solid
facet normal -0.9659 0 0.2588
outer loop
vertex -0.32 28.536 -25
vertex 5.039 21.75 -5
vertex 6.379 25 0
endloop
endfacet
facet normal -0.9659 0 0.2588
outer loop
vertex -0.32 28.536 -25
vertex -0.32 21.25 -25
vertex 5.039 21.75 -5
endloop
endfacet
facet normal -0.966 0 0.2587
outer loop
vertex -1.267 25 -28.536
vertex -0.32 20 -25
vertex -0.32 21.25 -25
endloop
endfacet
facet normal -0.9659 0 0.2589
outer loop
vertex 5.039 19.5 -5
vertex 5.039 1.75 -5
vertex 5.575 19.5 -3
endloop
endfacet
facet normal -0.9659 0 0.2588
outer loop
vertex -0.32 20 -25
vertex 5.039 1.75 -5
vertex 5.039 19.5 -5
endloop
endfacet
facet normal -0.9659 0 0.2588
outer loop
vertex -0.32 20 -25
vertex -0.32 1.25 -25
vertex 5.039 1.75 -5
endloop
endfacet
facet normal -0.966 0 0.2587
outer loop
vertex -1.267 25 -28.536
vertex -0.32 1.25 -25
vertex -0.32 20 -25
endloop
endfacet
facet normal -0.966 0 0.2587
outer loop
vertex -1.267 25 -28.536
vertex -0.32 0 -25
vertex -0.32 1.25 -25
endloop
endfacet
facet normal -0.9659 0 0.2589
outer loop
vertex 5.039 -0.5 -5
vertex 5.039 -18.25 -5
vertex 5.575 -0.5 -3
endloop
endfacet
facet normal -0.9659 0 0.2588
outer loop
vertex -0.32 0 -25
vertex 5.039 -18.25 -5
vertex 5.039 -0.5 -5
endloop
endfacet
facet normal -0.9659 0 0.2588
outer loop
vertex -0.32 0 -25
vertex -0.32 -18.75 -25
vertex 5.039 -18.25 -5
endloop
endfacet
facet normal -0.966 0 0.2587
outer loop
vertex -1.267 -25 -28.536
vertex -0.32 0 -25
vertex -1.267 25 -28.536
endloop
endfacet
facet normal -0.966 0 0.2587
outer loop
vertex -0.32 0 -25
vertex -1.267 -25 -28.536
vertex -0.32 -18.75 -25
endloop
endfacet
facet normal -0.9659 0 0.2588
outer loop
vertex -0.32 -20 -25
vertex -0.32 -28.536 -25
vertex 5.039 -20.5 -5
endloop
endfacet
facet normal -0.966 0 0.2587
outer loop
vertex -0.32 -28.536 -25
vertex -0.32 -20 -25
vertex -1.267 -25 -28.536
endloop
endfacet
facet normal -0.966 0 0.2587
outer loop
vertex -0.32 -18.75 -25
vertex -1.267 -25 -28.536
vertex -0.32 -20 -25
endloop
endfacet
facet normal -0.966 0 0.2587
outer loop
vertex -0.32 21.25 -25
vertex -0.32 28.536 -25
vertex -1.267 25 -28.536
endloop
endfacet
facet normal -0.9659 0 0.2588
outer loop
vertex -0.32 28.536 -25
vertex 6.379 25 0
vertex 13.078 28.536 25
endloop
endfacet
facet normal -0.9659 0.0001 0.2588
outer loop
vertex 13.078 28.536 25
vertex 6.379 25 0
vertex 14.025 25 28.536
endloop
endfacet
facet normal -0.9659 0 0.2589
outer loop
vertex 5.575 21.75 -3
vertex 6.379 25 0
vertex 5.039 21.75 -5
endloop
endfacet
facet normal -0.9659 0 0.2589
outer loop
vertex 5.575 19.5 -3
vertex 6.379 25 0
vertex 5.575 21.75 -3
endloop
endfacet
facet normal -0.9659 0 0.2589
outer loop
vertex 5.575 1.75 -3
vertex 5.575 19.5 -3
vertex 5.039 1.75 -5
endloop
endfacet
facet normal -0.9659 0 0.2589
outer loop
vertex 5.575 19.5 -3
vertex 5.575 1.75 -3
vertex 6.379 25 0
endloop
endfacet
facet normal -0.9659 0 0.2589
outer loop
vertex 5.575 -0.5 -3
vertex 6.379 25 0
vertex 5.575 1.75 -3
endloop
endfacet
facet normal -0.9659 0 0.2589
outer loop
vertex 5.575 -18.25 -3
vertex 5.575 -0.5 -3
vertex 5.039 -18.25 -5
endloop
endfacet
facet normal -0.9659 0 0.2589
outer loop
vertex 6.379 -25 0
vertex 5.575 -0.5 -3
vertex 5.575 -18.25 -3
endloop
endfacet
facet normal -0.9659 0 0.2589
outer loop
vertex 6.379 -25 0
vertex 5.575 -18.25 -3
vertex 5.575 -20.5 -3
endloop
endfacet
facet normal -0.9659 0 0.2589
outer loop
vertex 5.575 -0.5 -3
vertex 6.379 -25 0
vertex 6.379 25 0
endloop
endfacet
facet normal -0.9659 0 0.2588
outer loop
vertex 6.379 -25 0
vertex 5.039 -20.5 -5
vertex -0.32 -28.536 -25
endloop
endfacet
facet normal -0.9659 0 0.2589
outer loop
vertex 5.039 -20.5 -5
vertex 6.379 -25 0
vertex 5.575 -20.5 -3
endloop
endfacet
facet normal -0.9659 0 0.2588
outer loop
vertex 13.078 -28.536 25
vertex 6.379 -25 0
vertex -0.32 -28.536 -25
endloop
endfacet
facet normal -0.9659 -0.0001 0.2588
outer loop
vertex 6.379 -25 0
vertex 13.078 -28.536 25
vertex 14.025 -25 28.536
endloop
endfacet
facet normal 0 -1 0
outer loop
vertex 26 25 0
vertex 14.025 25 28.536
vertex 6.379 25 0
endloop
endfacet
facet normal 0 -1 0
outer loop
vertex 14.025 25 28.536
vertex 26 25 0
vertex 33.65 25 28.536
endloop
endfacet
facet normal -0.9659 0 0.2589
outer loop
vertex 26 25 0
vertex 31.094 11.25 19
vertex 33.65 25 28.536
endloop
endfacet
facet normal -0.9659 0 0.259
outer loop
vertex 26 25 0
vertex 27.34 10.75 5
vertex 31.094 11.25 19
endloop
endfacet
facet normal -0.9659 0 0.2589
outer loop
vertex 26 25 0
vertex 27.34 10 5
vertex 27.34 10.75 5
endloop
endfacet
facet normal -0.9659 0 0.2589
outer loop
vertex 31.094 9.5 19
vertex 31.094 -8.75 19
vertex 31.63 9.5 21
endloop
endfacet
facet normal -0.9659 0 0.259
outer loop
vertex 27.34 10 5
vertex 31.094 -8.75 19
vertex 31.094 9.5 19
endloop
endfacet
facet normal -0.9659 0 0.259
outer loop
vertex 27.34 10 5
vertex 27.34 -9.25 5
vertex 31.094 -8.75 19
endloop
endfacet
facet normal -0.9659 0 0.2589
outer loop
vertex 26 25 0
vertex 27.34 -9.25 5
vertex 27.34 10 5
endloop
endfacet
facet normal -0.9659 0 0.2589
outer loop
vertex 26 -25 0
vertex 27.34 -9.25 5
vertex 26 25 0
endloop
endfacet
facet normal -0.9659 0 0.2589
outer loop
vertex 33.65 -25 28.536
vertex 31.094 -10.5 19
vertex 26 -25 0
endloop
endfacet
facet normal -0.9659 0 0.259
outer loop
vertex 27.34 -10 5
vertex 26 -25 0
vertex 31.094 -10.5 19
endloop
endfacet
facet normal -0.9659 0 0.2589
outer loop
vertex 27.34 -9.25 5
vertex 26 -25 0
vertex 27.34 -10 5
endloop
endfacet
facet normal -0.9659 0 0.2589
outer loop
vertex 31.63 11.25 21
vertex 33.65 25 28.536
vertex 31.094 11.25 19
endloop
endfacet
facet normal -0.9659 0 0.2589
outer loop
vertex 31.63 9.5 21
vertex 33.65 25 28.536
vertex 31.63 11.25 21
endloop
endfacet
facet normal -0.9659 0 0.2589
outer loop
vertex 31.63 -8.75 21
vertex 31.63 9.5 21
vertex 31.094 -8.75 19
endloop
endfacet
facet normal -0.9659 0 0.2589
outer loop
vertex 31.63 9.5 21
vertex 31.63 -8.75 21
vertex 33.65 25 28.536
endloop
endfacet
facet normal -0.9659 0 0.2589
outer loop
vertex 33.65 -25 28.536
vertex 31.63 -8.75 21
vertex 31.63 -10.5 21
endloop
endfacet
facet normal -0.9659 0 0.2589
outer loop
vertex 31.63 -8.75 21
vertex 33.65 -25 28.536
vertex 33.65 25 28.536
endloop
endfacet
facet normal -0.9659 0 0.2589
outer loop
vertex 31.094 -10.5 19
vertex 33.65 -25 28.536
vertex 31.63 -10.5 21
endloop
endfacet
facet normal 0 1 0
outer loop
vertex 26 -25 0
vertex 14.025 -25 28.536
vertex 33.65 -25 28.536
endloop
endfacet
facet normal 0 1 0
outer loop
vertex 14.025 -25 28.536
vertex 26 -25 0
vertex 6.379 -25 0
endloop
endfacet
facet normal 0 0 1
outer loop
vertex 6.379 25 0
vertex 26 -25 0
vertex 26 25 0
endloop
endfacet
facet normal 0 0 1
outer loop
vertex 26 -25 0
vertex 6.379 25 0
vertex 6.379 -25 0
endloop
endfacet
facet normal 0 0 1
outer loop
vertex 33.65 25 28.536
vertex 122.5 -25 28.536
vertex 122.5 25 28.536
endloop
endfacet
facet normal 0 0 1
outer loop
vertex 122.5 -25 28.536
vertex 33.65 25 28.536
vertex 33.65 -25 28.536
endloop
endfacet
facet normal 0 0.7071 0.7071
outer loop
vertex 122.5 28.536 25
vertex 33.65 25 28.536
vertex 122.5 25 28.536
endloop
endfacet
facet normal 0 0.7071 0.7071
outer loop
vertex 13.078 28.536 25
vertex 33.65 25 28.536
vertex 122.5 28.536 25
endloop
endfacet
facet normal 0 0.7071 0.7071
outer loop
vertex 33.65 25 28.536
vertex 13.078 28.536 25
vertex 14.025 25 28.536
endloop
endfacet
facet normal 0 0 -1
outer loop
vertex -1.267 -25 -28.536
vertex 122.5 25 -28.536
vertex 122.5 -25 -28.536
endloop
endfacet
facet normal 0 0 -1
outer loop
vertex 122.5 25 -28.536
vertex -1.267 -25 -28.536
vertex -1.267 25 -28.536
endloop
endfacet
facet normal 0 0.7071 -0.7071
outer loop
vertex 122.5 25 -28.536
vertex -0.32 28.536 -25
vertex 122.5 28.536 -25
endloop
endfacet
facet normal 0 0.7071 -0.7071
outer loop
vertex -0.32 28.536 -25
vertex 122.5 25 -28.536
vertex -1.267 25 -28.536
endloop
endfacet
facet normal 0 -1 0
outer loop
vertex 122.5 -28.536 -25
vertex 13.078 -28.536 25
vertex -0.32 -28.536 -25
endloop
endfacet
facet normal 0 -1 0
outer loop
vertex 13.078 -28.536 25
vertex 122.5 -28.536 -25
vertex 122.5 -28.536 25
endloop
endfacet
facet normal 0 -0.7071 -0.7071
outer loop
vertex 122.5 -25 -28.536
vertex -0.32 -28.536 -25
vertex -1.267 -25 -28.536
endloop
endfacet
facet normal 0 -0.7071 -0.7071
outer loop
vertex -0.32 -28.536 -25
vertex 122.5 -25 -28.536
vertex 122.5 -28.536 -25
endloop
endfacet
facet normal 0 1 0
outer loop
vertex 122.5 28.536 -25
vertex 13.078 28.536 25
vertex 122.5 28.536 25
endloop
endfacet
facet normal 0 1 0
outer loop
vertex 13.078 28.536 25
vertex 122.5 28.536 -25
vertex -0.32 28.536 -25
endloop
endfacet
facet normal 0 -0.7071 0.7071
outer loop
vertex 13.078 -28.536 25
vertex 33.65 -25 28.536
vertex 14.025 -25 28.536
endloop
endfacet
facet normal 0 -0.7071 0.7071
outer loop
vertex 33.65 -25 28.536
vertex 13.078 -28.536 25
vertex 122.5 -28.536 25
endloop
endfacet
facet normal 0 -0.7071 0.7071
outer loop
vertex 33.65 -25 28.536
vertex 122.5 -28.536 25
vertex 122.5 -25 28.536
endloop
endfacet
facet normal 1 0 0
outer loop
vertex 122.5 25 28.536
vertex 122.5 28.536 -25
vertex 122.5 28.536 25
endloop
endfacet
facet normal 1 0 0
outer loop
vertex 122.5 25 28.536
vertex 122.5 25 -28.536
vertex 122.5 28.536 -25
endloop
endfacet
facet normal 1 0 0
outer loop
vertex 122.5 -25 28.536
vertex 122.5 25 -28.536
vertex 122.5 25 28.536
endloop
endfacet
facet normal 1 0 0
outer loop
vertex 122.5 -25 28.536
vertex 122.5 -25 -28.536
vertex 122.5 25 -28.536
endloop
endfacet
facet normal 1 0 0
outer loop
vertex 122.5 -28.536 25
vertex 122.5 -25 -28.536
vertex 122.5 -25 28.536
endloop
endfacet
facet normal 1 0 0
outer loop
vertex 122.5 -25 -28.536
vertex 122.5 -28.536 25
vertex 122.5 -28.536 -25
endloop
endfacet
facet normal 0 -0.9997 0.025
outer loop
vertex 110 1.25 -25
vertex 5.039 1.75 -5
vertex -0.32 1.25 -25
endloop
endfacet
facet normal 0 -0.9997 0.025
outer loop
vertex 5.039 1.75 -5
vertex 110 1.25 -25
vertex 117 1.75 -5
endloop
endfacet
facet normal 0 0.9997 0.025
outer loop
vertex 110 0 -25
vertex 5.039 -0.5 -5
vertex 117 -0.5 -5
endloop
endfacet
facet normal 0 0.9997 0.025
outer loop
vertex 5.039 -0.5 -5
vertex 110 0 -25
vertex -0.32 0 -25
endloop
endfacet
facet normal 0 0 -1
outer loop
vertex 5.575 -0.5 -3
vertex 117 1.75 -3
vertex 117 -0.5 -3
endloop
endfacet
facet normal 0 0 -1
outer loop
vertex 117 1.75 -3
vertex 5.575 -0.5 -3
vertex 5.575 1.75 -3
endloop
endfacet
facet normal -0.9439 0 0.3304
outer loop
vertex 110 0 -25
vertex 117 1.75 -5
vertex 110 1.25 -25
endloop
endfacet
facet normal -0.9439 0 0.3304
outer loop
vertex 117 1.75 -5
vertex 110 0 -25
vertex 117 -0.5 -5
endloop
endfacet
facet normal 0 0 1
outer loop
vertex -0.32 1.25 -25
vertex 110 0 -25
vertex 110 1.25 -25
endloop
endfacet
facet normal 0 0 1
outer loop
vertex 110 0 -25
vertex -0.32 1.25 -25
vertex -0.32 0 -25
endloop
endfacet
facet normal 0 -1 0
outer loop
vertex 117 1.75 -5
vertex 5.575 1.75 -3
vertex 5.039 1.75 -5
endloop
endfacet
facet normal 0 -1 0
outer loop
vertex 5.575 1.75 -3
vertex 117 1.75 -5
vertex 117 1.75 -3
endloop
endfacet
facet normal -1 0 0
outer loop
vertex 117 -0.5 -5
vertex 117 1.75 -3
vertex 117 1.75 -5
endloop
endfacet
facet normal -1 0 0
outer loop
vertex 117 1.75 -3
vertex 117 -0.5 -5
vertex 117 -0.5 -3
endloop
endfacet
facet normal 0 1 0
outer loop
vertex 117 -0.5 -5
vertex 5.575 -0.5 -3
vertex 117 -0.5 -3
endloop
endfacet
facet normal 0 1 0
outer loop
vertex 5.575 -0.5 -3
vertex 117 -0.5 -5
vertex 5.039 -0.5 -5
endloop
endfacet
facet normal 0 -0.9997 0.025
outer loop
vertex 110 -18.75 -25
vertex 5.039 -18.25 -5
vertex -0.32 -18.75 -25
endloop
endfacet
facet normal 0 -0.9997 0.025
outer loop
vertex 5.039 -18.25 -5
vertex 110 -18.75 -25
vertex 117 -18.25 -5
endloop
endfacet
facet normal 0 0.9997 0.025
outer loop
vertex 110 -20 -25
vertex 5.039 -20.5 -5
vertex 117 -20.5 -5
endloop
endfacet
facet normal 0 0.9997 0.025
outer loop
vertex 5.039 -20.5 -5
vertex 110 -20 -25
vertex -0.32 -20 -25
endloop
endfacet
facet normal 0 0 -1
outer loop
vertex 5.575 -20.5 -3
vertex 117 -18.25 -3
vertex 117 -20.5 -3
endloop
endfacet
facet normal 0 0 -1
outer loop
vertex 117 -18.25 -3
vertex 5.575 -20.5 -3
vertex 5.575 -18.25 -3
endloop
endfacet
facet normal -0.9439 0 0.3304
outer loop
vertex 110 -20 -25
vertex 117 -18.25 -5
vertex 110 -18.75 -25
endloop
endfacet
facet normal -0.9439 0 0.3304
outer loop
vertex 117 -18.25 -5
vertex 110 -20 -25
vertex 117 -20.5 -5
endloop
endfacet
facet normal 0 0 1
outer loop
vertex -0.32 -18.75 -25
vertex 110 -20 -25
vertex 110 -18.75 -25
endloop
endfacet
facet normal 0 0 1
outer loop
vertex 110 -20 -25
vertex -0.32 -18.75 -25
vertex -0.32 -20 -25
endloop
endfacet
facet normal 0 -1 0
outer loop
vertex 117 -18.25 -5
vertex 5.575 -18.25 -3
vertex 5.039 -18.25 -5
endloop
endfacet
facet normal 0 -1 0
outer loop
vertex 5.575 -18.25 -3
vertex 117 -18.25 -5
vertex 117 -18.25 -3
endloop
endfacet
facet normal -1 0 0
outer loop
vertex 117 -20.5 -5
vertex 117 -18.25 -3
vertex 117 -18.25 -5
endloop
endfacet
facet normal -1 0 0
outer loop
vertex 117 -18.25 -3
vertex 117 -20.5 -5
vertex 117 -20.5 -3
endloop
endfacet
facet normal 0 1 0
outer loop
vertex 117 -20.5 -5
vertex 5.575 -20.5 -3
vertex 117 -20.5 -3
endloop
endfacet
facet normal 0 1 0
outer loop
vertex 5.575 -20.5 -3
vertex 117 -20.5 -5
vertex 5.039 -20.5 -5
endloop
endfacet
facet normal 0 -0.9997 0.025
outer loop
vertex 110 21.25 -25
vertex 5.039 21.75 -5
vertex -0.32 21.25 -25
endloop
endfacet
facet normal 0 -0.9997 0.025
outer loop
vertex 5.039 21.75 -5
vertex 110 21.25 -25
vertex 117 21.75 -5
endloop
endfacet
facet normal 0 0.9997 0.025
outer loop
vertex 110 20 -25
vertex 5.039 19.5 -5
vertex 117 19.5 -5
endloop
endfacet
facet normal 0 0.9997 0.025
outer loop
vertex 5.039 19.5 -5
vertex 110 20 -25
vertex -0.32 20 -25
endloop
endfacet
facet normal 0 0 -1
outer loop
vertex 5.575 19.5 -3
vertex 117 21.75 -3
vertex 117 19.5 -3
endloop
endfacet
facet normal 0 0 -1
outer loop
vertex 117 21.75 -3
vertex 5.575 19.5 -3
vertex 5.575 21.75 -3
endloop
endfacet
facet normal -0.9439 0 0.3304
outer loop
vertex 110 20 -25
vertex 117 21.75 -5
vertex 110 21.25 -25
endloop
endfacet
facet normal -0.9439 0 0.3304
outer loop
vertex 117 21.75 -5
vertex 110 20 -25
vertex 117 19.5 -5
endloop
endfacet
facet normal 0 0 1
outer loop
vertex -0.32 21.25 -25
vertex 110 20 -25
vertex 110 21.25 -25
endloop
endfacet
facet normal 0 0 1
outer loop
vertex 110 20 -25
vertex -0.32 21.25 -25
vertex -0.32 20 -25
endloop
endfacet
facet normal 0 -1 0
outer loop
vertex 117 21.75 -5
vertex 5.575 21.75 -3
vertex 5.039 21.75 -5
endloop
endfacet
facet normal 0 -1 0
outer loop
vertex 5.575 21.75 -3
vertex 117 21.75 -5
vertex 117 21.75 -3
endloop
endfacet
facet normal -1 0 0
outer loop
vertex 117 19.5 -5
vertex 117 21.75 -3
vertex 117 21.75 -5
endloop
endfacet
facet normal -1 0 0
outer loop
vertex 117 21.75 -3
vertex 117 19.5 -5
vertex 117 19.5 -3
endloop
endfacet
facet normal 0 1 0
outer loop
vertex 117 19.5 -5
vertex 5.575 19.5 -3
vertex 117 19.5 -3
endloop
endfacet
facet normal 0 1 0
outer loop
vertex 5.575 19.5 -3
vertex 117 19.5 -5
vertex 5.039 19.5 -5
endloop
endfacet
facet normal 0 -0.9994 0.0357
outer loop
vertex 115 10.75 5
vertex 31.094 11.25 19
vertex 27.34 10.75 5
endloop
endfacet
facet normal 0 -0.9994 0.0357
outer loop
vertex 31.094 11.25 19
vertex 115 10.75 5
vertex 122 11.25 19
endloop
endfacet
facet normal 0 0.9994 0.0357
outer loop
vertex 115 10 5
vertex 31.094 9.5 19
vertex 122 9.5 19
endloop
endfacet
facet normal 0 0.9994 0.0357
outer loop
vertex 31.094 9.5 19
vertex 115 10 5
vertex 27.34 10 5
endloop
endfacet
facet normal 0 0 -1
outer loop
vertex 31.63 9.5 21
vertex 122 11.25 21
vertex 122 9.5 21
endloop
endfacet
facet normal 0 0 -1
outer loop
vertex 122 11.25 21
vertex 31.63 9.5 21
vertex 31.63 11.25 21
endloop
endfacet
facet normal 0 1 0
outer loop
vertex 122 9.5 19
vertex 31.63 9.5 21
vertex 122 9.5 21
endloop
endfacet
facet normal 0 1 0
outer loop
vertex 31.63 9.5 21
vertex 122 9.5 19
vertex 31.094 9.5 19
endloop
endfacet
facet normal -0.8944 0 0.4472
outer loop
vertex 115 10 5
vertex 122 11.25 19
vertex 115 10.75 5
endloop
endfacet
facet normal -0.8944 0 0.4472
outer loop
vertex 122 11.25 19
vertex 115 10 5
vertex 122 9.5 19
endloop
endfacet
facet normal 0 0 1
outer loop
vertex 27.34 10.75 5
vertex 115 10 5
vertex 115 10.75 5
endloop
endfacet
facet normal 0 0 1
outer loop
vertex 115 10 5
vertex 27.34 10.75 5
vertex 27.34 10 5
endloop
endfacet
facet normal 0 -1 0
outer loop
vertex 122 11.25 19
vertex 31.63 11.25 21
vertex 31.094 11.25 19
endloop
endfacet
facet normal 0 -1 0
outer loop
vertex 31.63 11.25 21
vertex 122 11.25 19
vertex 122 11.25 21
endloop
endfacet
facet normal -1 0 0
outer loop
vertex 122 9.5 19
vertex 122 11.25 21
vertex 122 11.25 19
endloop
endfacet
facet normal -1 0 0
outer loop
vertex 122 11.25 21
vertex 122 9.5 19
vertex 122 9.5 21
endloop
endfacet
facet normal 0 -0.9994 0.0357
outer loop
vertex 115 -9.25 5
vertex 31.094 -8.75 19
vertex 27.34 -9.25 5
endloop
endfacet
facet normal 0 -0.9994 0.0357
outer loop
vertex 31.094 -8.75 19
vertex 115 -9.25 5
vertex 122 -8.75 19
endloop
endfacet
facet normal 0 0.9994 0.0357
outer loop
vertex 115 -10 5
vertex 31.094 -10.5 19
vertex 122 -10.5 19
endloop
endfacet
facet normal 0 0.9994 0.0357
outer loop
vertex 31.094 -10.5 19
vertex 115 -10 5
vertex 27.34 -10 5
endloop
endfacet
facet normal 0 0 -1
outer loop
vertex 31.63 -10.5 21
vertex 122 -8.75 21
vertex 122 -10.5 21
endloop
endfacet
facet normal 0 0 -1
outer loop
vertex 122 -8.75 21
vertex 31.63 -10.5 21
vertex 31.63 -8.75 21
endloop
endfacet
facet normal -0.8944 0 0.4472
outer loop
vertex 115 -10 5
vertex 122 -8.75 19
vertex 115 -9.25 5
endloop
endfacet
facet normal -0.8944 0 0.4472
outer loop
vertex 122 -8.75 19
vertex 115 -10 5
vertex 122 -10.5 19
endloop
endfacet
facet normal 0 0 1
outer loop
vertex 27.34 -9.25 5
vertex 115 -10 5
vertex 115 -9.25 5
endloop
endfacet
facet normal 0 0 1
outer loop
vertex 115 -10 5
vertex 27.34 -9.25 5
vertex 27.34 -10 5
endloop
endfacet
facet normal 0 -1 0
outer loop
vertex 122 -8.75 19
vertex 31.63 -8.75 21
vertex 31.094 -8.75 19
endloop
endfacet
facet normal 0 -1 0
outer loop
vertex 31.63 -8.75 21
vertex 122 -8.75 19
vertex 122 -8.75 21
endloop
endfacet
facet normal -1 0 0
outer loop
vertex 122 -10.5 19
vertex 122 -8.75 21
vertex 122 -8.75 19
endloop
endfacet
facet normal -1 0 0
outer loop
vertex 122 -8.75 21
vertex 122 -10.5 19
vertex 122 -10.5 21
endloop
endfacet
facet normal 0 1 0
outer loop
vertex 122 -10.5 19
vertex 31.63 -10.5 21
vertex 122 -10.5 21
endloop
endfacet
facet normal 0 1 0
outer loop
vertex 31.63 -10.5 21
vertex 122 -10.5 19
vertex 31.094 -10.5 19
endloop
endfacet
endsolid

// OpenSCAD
$fn=100;

module mainBody(){
rotate([0,90,0])
    linear_extrude(120)
    square([50,50] ,center = true);
}

module backDetail(){
translate([160,0,-40])
    minkowski(){
        cube(60, center=true);
        sphere(10, $fn=100);
    }
}

module frontDetail(cubeSize=[60,80,80]){

translate([-22,0,10])
    rotate([0,15,0])
    cube(cubeSize, center = true);


translate([6,25,0])
rotate([90,0,0])

linear_extrude(50)
polygon(points=[[0,0],[20,0],[30,37.3],[10,37.3]]);
}

module knifeSlot(knifeLength = 115, slotWidth = 1.75, slotHeigth = 20){
color("Red")
    hull(){
        cube([knifeLength,slotWidth-0.5,2]);
        translate([7,(slotWidth-0.5)/2-(slotWidth+0.5)/2,slotHeigth])
        cube([knifeLength,slotWidth+0.5,2]);
    }
}


difference(){
    minkowski(){
        mainBody();
        rotate([45,0,0])
        cube(5, center = true);
    }

    frontDetail();
    
    translate([-5,0,-25])
    knifeSlot();
    translate([-5,-20,-25])
    knifeSlot();
    translate([-5,20,-25])
    knifeSlot();
    translate([0,10,5])
    knifeSlot(slotHeigth=14, slotWidth=1.25);
    translate([0,-10,5])
    knifeSlot(slotHeigth=14, slotWidth=1.25);
    
}
